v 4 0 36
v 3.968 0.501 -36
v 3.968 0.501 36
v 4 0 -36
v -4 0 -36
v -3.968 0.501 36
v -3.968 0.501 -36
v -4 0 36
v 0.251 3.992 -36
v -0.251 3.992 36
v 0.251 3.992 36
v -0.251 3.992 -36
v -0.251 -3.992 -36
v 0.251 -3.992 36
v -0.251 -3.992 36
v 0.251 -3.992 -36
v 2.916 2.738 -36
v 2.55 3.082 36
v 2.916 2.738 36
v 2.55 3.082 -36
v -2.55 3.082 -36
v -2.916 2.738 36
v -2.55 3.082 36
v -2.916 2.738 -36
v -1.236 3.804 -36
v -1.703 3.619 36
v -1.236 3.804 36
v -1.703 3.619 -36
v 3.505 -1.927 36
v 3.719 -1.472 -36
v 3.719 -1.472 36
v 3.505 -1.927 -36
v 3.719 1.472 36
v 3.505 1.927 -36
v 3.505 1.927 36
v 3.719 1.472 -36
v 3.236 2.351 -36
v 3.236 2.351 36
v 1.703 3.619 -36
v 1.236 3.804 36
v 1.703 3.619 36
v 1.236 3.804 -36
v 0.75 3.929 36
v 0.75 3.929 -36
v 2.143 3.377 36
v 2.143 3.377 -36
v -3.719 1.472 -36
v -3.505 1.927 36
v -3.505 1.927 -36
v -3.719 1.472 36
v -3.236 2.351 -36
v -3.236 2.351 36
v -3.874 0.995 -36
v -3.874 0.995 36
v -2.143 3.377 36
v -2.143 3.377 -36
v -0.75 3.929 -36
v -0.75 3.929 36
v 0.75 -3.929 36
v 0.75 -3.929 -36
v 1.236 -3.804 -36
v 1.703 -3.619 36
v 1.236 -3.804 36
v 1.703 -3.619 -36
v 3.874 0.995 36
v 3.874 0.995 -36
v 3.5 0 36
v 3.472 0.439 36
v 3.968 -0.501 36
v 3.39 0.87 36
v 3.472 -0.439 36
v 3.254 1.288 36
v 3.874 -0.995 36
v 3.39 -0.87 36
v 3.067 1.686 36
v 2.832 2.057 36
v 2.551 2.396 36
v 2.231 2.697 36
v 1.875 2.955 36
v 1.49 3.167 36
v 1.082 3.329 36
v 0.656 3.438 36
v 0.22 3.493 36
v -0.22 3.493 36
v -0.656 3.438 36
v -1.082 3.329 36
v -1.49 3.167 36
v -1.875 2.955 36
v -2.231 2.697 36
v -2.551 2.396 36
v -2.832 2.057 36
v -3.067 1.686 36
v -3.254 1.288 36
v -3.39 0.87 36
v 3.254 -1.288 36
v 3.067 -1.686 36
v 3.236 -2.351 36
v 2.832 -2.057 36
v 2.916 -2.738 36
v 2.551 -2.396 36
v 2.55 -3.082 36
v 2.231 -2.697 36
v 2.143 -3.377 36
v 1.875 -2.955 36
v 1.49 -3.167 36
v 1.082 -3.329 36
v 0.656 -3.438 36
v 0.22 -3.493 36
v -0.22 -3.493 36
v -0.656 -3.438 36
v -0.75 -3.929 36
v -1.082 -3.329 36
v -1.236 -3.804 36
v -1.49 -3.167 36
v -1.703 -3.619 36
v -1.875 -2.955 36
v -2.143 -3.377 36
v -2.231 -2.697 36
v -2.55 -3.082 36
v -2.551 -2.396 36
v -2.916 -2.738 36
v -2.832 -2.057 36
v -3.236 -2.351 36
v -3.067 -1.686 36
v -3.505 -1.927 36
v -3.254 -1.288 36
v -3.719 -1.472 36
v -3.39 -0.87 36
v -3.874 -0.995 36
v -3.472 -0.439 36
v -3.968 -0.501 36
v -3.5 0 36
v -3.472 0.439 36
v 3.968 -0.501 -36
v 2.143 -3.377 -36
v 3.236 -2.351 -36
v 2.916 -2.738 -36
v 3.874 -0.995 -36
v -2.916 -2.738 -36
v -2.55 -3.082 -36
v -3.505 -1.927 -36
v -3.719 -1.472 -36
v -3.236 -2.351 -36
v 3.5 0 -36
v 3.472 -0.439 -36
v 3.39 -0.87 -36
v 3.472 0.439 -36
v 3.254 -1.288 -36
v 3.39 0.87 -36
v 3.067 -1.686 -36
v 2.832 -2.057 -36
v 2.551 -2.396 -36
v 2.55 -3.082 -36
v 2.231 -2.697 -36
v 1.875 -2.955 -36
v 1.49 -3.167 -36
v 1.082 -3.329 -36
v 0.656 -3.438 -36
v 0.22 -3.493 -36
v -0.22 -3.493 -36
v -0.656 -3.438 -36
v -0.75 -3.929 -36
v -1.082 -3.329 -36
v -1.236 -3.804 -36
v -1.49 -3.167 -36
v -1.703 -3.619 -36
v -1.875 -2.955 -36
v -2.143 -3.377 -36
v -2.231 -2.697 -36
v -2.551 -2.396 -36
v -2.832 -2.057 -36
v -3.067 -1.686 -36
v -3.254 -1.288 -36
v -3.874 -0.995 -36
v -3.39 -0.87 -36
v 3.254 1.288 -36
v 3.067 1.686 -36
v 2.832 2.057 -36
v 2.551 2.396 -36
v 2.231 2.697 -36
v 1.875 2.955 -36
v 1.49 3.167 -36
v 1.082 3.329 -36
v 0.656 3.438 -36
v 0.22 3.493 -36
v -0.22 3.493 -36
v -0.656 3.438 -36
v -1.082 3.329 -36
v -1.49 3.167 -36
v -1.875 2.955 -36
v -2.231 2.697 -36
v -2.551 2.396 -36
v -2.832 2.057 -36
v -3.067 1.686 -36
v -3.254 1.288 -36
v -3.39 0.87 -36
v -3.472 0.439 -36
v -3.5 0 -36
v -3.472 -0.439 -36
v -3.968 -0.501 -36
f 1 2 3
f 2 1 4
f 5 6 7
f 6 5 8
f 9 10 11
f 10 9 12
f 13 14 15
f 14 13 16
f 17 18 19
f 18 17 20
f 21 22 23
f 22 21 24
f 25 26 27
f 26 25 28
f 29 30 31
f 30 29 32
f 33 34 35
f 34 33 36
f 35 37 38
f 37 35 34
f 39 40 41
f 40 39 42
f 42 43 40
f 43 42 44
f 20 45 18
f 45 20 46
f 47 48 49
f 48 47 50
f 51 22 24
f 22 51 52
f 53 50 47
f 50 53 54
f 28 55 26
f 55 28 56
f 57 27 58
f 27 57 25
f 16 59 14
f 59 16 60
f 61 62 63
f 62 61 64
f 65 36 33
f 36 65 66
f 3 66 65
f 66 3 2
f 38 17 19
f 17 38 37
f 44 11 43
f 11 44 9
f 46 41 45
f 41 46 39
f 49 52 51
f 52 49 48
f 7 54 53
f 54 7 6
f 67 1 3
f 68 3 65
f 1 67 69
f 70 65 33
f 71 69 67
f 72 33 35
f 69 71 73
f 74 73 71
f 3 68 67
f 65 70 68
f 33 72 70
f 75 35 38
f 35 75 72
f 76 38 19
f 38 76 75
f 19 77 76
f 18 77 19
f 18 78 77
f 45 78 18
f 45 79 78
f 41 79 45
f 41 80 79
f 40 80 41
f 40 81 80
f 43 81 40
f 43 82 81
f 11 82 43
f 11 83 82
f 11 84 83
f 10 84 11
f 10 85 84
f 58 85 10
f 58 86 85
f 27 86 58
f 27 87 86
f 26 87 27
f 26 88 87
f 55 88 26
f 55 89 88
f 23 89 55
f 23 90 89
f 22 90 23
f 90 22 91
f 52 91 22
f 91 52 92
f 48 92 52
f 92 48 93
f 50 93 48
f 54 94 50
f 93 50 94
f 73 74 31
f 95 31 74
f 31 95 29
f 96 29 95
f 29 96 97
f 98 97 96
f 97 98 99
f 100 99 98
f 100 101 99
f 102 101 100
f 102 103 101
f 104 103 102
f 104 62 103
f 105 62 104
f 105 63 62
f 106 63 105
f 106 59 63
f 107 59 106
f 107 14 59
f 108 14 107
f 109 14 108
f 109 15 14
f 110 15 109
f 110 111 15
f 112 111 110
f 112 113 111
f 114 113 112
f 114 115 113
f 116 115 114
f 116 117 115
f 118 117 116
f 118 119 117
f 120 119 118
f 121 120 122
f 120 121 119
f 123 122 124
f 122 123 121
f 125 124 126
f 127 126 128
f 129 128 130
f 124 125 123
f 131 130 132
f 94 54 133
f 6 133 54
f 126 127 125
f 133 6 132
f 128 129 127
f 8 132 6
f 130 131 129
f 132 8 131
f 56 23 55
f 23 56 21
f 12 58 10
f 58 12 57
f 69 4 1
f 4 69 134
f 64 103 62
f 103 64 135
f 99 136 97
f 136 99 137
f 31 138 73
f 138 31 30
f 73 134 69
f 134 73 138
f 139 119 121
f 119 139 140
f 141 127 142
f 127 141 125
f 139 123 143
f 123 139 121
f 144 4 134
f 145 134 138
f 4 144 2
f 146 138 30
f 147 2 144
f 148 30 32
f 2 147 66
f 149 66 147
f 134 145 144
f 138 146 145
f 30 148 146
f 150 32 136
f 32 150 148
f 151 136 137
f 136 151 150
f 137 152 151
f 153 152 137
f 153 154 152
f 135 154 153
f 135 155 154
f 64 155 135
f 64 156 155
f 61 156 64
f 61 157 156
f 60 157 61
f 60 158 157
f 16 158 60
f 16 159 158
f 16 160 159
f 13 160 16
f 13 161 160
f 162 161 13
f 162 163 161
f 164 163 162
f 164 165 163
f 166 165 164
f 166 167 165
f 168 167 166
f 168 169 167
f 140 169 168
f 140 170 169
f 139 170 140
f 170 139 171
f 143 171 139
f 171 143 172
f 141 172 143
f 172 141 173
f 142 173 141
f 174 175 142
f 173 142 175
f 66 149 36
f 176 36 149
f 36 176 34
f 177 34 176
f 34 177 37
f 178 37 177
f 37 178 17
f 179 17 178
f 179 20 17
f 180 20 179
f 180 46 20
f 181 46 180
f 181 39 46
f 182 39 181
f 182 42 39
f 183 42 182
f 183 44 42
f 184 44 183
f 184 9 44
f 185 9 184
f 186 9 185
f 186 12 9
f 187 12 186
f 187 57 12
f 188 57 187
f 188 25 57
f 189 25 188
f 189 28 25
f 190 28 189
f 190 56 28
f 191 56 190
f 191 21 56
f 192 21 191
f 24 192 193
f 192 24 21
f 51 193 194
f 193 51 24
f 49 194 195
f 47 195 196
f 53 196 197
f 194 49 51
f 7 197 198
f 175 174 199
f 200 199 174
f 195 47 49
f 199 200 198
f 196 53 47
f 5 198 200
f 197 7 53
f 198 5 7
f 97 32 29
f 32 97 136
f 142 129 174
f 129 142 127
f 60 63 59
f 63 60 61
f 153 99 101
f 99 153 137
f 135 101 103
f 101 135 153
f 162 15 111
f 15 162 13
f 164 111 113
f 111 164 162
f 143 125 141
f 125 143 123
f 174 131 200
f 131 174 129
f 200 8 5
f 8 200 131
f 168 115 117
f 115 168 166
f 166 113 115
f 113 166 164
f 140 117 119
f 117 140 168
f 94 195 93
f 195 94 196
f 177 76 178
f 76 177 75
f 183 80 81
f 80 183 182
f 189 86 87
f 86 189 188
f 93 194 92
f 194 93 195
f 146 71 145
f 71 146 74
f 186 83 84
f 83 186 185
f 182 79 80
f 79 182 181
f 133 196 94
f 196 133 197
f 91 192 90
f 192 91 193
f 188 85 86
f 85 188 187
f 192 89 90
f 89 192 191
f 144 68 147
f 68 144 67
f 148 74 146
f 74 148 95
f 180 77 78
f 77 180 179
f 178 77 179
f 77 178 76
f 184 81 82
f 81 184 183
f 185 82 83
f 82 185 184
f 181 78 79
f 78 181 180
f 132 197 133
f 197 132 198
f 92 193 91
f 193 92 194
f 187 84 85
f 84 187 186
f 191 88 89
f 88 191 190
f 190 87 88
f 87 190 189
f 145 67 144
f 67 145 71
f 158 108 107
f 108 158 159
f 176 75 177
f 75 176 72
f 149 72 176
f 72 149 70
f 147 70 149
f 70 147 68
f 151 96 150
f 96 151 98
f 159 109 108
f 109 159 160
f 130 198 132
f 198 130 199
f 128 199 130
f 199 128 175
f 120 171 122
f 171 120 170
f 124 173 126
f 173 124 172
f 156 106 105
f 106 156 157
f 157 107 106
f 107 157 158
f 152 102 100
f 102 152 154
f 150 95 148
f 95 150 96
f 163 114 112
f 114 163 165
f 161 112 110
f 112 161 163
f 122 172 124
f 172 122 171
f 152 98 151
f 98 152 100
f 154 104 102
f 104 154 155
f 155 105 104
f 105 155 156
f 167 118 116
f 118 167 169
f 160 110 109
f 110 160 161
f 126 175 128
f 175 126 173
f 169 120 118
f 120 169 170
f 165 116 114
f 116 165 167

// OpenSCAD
$fn = 50;


difference() {
	union() {
		translate(v = [0, 0, -36.0000000000]) {
			cylinder(h = 72, r = 4.0000000000);
		}
	}
	union() {
		translate(v = [0, 0, -100.0000000000]) {
			cylinder(h = 200, r = 3.5000000000);
		}
	}
}
